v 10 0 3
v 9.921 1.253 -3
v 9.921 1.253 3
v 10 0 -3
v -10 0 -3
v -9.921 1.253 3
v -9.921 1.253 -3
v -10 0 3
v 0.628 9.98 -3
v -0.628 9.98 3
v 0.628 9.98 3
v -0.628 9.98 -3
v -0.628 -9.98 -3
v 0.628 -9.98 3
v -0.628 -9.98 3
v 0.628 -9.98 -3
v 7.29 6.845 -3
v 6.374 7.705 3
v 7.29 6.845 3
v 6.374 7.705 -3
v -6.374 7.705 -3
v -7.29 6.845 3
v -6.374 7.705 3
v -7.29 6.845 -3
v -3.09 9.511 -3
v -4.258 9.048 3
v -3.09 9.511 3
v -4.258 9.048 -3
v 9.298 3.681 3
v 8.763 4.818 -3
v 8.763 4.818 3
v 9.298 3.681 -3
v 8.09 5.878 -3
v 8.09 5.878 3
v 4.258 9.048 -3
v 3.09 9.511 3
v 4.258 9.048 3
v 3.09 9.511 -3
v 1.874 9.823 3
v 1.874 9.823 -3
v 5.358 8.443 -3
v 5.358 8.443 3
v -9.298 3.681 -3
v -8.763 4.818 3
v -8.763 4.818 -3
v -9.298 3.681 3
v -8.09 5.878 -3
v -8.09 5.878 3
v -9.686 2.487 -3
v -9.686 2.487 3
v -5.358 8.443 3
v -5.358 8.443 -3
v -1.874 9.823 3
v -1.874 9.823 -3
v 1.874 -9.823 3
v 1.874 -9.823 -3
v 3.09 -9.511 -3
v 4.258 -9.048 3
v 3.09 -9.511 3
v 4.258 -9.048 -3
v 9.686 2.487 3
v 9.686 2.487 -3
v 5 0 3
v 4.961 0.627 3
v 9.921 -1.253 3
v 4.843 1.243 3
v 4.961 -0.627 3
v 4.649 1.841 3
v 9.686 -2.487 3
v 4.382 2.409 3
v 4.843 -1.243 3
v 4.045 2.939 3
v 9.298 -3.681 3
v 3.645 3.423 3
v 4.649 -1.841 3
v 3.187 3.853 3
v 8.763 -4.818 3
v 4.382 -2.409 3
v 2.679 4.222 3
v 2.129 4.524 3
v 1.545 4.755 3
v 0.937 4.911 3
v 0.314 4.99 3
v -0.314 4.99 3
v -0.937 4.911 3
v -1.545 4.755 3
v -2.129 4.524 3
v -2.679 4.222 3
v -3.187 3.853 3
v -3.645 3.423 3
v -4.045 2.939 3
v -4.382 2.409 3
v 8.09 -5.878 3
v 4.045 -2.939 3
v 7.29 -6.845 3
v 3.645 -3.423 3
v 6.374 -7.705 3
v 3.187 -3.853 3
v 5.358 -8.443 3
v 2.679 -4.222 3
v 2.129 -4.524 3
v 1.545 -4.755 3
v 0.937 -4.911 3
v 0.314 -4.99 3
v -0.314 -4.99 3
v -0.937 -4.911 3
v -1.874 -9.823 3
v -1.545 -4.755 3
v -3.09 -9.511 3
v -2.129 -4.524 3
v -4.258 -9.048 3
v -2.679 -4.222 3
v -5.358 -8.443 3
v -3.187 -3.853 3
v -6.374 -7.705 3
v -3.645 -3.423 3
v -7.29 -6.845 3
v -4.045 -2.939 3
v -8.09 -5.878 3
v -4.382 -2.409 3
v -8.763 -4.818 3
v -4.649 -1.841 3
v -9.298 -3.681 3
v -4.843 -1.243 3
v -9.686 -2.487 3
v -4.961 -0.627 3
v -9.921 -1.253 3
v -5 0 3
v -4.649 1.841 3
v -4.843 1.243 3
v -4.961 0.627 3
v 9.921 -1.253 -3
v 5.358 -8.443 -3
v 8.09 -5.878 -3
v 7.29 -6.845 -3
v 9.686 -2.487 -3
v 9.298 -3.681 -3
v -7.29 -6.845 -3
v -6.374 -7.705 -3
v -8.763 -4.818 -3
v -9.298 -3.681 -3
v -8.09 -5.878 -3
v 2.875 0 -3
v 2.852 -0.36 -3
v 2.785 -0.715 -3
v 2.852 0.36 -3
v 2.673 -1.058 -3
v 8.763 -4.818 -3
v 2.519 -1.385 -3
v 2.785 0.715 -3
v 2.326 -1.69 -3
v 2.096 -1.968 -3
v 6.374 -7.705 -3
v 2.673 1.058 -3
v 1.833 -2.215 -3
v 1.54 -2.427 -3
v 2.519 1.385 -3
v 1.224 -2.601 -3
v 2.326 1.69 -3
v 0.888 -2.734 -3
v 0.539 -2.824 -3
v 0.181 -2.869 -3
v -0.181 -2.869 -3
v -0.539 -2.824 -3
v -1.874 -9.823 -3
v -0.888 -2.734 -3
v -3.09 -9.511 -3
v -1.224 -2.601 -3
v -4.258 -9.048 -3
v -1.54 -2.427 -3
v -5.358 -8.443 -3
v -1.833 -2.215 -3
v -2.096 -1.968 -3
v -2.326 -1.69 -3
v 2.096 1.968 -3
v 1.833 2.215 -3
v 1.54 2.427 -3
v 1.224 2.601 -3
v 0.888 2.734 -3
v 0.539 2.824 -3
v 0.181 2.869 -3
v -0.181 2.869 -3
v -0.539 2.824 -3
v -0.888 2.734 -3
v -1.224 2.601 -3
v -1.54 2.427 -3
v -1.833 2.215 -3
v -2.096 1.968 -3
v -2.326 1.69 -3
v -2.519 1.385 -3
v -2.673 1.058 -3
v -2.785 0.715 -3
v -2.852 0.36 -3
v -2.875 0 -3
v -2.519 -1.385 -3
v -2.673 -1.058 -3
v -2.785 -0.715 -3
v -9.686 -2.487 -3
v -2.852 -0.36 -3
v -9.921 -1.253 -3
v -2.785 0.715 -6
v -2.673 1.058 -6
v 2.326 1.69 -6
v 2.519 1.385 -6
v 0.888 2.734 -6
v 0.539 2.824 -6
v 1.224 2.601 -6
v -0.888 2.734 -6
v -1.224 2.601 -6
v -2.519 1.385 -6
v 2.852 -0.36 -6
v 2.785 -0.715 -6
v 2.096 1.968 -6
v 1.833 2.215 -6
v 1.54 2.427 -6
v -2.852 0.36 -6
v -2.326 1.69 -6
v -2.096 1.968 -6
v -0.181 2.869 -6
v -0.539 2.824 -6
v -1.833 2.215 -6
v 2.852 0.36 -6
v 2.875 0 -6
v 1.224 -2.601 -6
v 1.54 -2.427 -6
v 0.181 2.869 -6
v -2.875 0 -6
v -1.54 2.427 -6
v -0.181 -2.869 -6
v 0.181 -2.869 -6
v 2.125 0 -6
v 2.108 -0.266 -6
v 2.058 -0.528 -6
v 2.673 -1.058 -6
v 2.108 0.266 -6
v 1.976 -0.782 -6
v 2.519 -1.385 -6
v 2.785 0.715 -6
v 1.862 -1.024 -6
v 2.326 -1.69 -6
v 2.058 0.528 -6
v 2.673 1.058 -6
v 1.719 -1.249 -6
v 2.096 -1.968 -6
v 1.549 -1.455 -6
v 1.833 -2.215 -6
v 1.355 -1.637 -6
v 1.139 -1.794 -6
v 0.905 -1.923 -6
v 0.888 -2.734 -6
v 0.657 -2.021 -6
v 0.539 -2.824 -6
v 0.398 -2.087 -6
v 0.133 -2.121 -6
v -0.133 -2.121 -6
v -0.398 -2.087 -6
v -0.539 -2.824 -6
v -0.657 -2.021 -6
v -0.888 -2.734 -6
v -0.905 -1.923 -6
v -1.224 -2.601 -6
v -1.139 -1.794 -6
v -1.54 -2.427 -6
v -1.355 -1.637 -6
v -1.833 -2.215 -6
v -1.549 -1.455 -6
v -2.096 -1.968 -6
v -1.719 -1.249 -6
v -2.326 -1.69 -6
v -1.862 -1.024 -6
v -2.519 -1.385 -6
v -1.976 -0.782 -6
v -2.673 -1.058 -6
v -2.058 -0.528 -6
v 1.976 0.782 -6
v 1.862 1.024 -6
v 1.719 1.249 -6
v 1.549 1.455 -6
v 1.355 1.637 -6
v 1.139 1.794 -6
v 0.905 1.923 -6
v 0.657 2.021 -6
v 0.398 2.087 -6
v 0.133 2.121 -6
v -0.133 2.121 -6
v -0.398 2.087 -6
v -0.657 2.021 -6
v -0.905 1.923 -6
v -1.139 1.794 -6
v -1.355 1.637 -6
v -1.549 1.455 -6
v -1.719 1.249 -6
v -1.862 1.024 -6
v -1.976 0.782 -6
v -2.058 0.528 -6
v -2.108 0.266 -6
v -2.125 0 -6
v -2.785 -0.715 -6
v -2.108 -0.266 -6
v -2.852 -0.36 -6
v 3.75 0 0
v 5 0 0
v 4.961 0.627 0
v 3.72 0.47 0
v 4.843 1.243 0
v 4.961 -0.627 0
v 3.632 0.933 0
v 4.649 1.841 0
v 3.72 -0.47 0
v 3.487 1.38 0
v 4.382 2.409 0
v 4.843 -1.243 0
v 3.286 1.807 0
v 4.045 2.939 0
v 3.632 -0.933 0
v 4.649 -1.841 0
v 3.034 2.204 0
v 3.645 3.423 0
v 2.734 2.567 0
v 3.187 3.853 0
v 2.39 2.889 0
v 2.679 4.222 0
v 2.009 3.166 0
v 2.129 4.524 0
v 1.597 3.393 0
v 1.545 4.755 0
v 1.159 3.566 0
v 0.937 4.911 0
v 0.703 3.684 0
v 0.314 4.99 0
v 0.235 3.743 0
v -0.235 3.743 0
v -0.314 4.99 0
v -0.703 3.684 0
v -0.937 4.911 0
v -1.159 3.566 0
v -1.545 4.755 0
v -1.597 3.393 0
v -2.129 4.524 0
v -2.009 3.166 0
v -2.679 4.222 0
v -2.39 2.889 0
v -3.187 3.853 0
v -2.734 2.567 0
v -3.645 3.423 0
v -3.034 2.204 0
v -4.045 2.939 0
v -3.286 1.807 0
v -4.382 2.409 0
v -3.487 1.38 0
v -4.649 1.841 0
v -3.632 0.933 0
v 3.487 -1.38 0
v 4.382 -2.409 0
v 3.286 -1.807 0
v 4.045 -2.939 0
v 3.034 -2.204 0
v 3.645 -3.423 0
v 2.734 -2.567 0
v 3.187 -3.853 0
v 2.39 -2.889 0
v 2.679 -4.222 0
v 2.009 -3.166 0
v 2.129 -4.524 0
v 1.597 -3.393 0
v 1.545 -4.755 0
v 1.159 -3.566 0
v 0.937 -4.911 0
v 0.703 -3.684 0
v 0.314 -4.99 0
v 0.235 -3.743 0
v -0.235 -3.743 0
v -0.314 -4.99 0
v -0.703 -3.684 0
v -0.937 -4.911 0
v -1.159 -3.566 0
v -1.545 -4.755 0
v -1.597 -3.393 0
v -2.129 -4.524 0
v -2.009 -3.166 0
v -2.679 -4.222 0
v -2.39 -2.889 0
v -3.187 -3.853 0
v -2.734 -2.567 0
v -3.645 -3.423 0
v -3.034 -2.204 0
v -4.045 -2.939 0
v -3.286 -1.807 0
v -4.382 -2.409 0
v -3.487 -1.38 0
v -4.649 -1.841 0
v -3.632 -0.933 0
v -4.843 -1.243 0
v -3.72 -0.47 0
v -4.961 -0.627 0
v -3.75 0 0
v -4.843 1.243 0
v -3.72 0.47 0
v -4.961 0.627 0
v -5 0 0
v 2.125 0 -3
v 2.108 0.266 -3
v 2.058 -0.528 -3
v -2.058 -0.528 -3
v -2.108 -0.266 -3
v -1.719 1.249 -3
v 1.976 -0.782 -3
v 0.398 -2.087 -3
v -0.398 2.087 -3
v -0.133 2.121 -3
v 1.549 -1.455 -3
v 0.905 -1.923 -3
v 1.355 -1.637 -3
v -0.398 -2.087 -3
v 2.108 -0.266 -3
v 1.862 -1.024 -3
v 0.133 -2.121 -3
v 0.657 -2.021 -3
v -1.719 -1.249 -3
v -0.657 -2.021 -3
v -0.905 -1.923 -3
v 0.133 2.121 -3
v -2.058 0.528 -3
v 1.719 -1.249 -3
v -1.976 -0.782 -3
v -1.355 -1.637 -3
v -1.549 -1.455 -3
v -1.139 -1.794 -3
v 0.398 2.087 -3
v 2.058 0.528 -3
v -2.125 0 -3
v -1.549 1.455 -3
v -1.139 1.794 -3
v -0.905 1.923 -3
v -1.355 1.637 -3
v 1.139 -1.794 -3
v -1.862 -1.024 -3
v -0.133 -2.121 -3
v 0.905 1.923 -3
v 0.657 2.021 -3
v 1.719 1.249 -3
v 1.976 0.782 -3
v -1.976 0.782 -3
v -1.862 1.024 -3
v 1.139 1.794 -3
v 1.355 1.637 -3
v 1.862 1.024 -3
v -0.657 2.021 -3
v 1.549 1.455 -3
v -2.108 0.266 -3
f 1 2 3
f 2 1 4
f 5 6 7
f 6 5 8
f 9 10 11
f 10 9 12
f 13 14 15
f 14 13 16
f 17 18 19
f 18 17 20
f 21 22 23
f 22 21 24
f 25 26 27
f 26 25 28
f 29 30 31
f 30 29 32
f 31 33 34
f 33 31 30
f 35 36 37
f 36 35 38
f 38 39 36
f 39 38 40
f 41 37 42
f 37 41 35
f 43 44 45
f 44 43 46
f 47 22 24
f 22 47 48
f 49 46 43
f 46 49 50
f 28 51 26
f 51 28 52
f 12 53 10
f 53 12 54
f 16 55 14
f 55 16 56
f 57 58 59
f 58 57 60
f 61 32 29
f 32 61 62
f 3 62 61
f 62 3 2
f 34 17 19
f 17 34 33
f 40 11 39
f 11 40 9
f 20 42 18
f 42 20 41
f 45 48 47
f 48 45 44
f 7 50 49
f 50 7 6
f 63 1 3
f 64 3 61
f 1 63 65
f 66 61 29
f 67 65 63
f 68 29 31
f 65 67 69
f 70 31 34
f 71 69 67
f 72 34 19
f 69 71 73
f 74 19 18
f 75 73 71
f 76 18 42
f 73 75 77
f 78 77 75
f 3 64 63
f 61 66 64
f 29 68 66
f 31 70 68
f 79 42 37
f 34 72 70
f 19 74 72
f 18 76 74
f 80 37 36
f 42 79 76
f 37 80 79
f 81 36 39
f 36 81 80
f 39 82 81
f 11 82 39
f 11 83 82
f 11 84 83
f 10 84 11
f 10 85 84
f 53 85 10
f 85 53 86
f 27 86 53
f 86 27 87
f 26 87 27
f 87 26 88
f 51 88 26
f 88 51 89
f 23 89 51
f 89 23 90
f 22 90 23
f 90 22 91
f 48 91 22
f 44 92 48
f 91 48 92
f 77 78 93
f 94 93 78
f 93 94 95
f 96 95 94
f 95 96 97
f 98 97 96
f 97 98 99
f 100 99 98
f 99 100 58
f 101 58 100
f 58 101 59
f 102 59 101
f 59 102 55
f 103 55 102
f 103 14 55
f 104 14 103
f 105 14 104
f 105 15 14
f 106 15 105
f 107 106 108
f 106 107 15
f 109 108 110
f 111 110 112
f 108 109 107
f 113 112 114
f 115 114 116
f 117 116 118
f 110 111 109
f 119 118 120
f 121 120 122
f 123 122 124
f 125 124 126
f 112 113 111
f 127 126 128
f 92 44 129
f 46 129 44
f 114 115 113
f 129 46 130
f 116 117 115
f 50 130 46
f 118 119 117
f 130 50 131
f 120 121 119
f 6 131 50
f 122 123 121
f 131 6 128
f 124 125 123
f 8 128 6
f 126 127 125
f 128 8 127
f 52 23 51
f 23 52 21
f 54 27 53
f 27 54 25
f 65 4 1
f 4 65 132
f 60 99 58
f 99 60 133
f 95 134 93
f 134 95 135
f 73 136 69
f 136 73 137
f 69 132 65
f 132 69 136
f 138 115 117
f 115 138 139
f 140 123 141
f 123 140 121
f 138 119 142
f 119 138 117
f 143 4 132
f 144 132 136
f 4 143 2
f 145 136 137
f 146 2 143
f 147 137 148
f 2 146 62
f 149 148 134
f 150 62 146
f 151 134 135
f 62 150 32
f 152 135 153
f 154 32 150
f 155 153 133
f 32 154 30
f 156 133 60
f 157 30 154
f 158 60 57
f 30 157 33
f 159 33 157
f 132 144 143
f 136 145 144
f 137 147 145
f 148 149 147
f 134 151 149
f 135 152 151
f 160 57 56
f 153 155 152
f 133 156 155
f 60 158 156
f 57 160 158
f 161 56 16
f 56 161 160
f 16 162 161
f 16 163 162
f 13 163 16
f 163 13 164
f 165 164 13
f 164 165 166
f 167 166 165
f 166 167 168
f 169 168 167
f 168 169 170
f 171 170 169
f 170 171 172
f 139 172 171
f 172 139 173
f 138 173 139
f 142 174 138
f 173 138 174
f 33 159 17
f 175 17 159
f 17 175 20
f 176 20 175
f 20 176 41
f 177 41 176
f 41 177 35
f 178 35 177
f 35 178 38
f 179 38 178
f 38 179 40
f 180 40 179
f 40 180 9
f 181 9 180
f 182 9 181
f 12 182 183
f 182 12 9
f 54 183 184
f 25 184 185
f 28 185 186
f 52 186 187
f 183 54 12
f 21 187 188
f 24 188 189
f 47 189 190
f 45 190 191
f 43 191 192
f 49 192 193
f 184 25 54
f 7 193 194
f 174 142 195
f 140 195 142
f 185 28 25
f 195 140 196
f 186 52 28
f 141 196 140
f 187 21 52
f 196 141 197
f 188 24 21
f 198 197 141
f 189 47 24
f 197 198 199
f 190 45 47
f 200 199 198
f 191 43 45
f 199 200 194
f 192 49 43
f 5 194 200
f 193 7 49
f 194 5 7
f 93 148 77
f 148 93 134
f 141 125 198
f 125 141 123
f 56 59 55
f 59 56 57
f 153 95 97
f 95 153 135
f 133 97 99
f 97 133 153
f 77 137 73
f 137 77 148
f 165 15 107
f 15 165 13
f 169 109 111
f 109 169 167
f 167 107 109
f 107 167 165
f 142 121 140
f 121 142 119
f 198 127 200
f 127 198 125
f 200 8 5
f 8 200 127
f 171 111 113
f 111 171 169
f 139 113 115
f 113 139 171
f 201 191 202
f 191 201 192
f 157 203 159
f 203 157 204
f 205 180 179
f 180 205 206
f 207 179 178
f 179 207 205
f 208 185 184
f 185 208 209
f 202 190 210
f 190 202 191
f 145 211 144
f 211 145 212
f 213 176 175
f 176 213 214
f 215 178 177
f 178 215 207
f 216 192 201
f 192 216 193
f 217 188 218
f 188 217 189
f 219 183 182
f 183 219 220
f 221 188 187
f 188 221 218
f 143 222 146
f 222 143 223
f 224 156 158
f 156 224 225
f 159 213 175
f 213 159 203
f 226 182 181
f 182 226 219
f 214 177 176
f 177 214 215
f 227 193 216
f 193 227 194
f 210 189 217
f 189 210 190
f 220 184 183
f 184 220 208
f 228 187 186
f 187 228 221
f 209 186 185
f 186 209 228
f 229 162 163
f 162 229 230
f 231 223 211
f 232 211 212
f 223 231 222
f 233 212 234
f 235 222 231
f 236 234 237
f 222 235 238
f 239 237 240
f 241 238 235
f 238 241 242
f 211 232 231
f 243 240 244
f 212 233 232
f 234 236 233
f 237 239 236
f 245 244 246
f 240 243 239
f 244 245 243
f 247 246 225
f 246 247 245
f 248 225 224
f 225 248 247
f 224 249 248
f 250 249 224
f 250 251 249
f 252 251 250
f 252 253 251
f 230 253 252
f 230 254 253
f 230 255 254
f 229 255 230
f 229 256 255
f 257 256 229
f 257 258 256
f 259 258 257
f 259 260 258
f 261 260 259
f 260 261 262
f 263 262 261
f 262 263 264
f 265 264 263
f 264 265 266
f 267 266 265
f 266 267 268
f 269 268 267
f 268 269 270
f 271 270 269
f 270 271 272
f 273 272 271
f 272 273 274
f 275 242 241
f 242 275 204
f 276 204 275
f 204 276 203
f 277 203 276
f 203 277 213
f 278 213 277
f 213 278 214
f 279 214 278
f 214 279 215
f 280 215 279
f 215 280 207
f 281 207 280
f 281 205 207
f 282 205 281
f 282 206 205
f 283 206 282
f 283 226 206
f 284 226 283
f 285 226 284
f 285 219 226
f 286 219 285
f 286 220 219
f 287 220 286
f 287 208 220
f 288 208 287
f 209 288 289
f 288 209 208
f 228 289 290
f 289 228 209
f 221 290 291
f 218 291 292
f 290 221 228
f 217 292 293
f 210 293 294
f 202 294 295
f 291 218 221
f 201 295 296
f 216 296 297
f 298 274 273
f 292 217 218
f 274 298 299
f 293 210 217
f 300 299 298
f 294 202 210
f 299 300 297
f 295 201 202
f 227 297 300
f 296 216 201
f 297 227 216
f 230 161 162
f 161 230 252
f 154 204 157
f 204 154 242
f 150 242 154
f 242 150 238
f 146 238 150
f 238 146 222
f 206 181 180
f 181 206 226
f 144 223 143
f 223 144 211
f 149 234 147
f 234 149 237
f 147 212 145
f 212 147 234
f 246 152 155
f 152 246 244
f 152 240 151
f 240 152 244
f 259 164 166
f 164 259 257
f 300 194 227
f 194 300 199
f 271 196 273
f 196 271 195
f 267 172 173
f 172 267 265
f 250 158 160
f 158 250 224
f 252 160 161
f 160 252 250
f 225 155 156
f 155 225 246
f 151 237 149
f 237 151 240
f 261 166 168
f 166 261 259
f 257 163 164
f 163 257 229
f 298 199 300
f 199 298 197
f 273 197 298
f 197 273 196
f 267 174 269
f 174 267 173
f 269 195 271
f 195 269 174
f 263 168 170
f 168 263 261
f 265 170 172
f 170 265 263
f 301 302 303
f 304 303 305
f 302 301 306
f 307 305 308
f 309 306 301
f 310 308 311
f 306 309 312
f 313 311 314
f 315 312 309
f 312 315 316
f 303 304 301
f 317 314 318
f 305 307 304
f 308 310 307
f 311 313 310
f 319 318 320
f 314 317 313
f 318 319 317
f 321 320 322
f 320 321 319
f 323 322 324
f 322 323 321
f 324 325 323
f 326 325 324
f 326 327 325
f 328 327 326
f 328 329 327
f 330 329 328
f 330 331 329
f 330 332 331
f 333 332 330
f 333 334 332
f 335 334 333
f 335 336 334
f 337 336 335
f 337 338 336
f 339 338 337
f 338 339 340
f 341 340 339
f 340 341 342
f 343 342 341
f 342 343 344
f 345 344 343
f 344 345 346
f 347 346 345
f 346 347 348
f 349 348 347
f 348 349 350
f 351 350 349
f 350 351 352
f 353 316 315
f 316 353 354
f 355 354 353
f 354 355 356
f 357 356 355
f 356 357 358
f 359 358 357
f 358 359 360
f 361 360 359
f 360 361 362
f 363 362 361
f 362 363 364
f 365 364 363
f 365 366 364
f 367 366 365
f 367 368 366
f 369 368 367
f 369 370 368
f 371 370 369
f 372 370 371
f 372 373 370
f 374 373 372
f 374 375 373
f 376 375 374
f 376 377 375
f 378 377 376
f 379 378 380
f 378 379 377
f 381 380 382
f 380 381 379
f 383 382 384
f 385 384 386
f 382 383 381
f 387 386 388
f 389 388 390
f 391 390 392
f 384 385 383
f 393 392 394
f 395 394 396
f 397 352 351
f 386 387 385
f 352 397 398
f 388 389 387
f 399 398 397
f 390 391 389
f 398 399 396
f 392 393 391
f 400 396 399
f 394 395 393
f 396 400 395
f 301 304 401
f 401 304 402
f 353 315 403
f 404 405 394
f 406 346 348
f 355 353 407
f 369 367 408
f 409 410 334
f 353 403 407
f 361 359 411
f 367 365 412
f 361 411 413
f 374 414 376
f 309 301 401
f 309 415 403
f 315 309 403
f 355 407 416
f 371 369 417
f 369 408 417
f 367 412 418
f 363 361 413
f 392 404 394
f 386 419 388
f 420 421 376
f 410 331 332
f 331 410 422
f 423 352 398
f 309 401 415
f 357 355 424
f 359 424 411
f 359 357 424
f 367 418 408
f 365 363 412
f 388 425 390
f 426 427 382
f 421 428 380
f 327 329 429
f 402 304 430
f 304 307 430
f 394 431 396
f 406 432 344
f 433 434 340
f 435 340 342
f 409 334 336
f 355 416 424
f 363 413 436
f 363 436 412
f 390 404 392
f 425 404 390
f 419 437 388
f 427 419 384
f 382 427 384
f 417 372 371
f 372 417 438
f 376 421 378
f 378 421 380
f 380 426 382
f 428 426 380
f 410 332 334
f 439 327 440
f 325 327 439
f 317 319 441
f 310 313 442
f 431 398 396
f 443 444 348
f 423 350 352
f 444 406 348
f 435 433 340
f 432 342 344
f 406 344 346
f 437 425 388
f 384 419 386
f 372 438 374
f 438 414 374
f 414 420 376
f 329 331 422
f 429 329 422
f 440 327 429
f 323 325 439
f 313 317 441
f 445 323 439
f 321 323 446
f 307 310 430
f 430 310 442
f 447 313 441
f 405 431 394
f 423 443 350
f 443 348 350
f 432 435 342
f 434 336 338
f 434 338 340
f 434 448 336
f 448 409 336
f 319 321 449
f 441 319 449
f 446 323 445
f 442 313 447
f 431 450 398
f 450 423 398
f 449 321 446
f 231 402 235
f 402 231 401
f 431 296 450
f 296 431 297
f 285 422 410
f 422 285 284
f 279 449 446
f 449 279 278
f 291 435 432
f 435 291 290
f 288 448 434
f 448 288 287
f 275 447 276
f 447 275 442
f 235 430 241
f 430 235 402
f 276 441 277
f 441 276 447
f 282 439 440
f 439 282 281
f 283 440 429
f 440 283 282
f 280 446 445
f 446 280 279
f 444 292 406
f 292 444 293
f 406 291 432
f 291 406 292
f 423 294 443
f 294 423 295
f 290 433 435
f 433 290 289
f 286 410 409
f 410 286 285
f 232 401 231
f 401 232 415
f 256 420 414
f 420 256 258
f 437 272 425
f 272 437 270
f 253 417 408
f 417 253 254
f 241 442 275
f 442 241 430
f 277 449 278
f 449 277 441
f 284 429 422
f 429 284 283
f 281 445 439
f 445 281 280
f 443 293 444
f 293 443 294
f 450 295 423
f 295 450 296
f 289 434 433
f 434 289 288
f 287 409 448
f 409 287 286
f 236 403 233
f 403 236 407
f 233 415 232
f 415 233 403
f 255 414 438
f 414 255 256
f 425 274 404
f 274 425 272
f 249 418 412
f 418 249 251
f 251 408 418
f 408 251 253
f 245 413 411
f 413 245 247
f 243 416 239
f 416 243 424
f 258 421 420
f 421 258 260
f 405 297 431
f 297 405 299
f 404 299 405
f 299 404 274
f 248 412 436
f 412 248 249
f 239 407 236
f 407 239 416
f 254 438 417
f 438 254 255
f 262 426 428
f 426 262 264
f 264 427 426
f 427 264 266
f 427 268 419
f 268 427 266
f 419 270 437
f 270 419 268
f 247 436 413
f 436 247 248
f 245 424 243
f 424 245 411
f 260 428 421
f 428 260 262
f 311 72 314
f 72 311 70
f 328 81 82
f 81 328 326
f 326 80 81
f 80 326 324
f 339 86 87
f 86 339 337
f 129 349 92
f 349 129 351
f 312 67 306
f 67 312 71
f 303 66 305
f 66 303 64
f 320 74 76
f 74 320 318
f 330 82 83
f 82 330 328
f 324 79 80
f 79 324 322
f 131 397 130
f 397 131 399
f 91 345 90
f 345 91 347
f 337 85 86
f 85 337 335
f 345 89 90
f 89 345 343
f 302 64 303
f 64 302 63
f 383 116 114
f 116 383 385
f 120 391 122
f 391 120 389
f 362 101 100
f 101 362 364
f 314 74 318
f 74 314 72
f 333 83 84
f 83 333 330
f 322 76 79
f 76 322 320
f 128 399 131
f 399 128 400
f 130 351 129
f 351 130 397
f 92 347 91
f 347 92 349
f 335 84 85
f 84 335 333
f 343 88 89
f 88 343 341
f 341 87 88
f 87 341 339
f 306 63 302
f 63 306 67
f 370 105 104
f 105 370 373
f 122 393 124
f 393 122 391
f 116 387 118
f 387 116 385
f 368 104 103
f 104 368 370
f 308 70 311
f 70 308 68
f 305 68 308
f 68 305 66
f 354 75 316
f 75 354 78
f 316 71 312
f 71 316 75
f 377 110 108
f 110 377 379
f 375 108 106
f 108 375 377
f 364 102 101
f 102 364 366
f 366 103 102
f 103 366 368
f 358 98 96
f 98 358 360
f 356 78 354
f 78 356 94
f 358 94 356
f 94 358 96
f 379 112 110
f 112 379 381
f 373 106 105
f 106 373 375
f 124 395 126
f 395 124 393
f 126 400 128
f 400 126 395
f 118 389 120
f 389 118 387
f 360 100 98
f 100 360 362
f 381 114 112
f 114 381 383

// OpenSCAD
$fn = 50;

difference() {
	union() {
		translate(v = [0, 0, -3.0]) {
			cylinder(h = 6, r = 10.0);
		}
		#translate(v = [0, 0, -6.0]) {
			cylinder(h = 6, r = 2.875);
		}
	}
	union() {
		translate(v = [0, 0, 0]) {
			rotate(a = [0, 0, 0]) {
				difference() {
					union() {
						translate(v = [0, 0, -6.0]) {
							cylinder(h = 6, r = 2.0);
						}
						translate(v = [0, 0, -3]) {
							cylinder(h = 3, r1 = 2.125, r2 = 3.75);
						}
						translate(v = [0, 0, -6.0]) {
							cylinder(h = 6, r = 2.125);
						}
						translate(v = [0, 0, -6.0]) {
							cylinder(h = 6, r = 2.0);
						}
					}
					union();
				}
			}
		}
		#cylinder(h = 3, r = 5.0);
	}
}
